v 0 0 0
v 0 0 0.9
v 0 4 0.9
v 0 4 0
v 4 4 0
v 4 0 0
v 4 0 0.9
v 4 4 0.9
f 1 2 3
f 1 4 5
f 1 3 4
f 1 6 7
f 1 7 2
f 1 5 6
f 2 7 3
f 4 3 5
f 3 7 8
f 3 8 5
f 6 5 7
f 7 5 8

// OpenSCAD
/* Warning, this is a very basic generator with a lot of approximation 
input data : [QFN, Q8X, 4x4x0.9mm, 28, , B, C04-00144B]
generated by com.zoubworld.electronics.cad.model3d.Basic
Date : Sun Feb 15 10:50:48 CET 2026
*/

//body
color("black")
translate([0,0,0])
cube([4.0,4.0,0.9], center=false);
